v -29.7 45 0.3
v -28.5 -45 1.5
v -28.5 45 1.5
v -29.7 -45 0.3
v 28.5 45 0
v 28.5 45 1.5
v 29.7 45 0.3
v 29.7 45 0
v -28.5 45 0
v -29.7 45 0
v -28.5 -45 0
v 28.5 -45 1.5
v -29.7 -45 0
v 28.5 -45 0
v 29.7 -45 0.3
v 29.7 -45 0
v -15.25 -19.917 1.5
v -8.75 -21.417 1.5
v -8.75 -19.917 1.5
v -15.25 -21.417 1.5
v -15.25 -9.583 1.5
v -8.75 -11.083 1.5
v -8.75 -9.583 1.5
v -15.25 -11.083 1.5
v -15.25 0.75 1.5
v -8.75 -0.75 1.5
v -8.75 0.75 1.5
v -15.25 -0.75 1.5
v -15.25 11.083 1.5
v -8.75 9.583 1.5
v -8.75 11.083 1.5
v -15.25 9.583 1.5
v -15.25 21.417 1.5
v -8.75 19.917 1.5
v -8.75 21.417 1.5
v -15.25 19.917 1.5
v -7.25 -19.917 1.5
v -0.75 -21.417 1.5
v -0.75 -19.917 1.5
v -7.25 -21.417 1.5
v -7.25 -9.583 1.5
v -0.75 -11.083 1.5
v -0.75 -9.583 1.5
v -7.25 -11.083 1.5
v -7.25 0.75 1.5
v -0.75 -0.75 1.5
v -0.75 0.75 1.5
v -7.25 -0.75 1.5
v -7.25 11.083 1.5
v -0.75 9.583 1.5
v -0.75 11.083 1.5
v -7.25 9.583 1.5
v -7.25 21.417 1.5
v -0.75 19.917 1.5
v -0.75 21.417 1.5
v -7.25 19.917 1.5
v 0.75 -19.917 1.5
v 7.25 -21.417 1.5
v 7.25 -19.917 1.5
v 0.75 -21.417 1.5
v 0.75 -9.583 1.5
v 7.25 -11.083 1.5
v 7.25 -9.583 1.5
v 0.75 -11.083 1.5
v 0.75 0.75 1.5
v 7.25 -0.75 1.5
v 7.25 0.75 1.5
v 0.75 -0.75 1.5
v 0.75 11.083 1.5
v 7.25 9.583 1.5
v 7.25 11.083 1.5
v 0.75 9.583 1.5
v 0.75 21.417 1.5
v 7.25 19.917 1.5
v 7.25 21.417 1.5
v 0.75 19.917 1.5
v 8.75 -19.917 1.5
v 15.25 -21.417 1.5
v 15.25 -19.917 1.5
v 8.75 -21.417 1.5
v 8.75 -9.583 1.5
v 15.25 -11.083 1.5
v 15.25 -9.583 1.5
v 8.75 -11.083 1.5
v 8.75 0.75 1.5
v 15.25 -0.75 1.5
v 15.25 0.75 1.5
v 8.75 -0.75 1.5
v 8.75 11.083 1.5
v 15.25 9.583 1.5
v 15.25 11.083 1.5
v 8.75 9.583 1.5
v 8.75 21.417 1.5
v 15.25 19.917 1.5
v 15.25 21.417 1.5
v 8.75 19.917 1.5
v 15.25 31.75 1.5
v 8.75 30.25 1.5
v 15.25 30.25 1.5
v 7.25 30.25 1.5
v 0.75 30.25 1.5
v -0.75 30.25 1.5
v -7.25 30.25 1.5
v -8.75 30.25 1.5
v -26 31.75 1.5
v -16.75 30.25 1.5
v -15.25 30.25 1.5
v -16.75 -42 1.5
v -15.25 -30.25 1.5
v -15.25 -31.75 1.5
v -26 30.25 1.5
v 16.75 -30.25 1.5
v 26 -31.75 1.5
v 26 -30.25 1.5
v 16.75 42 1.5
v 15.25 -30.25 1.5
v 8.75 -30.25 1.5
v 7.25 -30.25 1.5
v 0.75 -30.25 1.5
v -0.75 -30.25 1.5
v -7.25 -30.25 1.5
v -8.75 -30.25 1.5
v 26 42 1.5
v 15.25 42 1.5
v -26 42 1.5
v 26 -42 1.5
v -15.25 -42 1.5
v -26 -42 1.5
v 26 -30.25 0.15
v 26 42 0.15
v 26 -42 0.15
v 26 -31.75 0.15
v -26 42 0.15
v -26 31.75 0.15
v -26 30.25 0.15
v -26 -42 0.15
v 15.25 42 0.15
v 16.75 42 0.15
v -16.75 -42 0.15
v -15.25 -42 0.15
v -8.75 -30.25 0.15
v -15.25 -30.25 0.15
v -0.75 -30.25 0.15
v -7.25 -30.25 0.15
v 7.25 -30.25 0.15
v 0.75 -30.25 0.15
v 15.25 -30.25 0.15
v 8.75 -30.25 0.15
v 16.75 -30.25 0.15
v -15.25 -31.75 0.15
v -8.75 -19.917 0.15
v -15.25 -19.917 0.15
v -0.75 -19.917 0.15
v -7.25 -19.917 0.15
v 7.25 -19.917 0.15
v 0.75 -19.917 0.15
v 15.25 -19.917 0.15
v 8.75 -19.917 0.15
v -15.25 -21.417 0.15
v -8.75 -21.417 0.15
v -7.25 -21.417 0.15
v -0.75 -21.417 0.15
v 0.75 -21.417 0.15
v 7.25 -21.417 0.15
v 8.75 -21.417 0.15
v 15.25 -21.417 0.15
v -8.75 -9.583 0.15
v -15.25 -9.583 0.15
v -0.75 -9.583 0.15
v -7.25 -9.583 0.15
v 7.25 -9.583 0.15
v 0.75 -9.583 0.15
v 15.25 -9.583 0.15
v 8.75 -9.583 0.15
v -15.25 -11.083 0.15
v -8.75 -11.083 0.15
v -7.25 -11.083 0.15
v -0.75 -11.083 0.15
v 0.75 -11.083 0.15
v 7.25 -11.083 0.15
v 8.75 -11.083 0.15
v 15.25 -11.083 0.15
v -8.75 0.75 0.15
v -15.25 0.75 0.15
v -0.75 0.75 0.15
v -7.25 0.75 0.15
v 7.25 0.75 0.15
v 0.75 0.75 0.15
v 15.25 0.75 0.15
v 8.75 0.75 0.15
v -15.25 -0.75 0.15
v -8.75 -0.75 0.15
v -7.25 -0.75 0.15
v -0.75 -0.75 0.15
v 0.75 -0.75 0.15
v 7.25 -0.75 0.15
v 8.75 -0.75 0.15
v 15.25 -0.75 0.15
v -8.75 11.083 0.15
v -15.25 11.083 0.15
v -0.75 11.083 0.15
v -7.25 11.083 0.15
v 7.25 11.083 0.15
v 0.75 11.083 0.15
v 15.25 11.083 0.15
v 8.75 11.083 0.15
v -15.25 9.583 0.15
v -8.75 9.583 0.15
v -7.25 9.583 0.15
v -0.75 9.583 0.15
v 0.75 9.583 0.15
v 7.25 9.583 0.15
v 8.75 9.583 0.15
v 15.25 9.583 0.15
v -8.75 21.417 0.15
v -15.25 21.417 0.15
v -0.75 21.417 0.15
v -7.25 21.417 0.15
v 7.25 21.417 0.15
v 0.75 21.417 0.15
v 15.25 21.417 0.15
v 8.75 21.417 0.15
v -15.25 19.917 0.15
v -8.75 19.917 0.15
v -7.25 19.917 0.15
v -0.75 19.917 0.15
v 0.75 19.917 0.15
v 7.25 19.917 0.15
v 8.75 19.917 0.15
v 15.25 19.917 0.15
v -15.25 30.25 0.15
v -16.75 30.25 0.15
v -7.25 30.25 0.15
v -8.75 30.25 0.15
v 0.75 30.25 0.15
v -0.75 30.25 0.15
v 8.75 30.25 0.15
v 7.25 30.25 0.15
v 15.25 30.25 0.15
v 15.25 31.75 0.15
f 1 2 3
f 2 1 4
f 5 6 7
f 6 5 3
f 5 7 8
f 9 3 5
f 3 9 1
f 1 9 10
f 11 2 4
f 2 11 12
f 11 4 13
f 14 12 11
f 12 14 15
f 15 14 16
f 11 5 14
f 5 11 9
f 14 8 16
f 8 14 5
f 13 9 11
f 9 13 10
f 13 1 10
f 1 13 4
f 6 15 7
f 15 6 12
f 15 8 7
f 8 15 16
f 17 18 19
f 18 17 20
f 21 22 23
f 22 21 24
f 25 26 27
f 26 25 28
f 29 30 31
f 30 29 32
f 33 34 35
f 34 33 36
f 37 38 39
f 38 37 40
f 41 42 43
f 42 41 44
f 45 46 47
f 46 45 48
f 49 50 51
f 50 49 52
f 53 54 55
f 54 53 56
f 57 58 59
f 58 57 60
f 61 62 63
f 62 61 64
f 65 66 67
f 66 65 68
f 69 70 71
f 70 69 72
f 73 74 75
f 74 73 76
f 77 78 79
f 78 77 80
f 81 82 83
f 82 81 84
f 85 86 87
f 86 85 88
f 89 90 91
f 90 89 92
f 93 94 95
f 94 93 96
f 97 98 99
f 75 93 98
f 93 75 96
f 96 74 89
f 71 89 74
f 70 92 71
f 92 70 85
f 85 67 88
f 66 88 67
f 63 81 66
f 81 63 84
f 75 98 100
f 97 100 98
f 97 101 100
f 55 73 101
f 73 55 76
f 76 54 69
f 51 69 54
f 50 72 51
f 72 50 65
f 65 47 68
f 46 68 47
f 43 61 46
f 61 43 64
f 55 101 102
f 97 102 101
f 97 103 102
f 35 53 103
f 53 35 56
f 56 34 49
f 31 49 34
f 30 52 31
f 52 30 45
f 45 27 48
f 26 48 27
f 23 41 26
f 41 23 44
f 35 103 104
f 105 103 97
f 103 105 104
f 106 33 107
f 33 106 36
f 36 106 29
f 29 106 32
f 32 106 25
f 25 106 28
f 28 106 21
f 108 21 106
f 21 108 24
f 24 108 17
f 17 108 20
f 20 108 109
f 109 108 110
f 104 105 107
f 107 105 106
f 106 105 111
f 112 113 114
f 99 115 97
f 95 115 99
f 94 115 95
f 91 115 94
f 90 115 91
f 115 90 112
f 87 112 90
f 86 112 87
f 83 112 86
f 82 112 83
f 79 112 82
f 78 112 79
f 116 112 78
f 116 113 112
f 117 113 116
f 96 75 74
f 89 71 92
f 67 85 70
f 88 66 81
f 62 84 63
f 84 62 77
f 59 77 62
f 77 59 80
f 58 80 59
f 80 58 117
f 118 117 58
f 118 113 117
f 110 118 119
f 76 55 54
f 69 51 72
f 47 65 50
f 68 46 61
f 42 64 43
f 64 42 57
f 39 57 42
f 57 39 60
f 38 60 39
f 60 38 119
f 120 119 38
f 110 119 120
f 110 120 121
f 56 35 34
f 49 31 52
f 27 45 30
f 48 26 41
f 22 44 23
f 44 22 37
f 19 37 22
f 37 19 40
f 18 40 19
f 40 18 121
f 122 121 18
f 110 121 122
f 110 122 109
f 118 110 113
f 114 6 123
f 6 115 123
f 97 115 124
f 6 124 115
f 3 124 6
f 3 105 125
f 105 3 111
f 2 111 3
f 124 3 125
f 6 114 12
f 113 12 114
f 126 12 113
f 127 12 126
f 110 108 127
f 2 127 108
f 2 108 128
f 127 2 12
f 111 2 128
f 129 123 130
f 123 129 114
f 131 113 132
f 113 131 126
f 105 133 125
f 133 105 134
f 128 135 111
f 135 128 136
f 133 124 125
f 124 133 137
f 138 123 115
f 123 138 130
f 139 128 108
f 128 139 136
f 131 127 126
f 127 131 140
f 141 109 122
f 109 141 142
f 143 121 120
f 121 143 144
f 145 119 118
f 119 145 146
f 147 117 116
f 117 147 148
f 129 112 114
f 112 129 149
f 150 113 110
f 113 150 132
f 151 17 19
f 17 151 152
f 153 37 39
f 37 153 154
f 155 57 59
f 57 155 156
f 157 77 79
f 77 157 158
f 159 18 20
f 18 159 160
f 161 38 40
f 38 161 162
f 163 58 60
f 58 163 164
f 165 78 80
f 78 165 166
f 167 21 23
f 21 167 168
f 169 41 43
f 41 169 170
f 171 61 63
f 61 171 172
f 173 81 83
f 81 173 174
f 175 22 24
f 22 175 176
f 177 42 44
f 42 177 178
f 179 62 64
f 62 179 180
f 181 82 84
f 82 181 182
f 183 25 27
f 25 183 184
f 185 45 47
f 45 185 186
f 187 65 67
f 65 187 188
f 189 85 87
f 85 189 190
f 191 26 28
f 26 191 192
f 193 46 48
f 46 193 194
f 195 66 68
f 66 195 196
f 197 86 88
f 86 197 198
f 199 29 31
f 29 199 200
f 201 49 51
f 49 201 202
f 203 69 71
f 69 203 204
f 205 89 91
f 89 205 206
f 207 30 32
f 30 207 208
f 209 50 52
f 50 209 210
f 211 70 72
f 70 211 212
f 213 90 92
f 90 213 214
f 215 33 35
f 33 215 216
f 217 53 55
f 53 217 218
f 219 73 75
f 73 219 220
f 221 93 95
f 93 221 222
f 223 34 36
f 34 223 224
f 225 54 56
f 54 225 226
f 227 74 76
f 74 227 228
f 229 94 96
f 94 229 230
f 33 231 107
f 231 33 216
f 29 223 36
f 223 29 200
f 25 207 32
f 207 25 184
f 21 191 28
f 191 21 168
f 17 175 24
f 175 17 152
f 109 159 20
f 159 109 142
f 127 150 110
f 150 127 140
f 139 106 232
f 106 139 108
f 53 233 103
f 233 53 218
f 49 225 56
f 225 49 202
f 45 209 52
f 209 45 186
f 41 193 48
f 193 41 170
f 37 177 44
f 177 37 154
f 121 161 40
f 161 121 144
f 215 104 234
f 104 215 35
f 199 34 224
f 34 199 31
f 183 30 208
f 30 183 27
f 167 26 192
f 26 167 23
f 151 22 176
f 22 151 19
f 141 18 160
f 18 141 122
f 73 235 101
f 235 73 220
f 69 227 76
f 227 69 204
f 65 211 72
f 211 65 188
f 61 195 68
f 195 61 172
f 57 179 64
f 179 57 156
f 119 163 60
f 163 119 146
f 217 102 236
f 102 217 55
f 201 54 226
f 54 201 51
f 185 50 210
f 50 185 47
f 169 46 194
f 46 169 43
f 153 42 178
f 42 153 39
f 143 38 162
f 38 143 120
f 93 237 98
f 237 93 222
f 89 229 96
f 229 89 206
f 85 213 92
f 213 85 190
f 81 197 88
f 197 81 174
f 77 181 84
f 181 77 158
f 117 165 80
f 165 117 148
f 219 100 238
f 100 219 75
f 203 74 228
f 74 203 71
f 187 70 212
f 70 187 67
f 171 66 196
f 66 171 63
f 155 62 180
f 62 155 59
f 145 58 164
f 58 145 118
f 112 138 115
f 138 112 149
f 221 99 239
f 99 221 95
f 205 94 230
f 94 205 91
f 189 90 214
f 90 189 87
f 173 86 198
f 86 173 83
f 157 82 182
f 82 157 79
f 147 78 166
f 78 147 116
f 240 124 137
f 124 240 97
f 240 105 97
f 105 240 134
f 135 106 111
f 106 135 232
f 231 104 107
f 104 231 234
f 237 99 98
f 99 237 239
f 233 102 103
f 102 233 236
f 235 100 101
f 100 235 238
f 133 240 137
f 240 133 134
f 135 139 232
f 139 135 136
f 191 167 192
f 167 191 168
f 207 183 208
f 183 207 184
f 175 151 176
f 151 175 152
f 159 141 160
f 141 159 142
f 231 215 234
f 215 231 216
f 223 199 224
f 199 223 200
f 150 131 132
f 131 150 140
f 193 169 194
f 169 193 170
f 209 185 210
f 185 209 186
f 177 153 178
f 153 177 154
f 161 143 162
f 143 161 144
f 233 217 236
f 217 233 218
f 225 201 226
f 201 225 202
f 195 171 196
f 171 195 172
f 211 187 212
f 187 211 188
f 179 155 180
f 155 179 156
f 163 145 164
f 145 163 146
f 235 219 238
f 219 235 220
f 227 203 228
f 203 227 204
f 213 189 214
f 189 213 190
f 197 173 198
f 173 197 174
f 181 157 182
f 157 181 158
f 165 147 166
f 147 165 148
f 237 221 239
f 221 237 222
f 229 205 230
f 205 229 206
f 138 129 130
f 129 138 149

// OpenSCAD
W=64;
W2=100;
H=90;
T=1.5;
B=4;
Q=7;
H1=7;
HR=12;

color("white")
backing();
color("brown")
theactualpanel();

module backing() {
    cube_center([W-H1,H,0.15]);
}

module theactualpanel() {
    
    // the pointed edges that go into groove
    for(s=[-1:2:1])
        scale([s,1,1])
        translate([(W-H1)/2,0,])
        difference() {
            rotate([0,45,0])
            cube([1.5*sqrt(2),H,1.5*sqrt(2)],center=true);
            translate([0,0,-1.5])
            cube([3,H+1,3],center=true);
            translate([2.7,0,0])
            cube([3,H+1,3],center=true);
            translate([-2.7,0,0])
            cube([3,H+1,3],center=true);
    }
    
    intersection() {
        // clips the following to dimensions just in case
        cube_center([W-H1,H,1.5]);
        // of this:
        union() {
            // border
            difference() {
                cube_center([W,H,1.5]);
                translate([0,0,-1])
                cube_center([W-3*B,H-1.5*B,10]);
            }
            
            Q = 12;
            
            translate([W/2-B-Q,Q+B/2,0])
            cube_center([T,H,1.5]); 
            
            translate([-(W/2-B-Q),-(Q+B/2),0])
            cube_center([T,H,1.5]); 
                        
            translate([-(Q+B),H/2-B/2-Q,0])
            cube_center([W,T,1.5]); 
            
            translate([Q+B,-(H/2-B/2-Q),0])
            cube_center([W,T,1.5]); 
            
            for(y=[-(H/2-B/2-Q):(H/2-B/2-Q)/3:(H/2-B/2-Q)])
            translate([0,y,0])
            cube_center([W-2*Q-2*B,T,1.5]); 
            
            for(x=[-(W/2-B-Q):(W/2-B-Q)/2:(W/2-B-Q)])
            translate([x,0,0])
            cube_center([T,H-2*Q-B,1.5]); 
        }
    }
}

module cube_center(dims,r=0) {
    if(r==0) {
        translate([-dims[0]/2, -dims[1]/2, 0])
        cube(dims);
    } else {
        
        minkowski() {
            translate([-dims[0]/2+r, -dims[1]/2+r, 0])
            cube([dims[0]-2*r,dims[1]-2*r,dims[2]]);
            cylinder(r=r,h=0.00001,$fn=32);
        }
    }
}
